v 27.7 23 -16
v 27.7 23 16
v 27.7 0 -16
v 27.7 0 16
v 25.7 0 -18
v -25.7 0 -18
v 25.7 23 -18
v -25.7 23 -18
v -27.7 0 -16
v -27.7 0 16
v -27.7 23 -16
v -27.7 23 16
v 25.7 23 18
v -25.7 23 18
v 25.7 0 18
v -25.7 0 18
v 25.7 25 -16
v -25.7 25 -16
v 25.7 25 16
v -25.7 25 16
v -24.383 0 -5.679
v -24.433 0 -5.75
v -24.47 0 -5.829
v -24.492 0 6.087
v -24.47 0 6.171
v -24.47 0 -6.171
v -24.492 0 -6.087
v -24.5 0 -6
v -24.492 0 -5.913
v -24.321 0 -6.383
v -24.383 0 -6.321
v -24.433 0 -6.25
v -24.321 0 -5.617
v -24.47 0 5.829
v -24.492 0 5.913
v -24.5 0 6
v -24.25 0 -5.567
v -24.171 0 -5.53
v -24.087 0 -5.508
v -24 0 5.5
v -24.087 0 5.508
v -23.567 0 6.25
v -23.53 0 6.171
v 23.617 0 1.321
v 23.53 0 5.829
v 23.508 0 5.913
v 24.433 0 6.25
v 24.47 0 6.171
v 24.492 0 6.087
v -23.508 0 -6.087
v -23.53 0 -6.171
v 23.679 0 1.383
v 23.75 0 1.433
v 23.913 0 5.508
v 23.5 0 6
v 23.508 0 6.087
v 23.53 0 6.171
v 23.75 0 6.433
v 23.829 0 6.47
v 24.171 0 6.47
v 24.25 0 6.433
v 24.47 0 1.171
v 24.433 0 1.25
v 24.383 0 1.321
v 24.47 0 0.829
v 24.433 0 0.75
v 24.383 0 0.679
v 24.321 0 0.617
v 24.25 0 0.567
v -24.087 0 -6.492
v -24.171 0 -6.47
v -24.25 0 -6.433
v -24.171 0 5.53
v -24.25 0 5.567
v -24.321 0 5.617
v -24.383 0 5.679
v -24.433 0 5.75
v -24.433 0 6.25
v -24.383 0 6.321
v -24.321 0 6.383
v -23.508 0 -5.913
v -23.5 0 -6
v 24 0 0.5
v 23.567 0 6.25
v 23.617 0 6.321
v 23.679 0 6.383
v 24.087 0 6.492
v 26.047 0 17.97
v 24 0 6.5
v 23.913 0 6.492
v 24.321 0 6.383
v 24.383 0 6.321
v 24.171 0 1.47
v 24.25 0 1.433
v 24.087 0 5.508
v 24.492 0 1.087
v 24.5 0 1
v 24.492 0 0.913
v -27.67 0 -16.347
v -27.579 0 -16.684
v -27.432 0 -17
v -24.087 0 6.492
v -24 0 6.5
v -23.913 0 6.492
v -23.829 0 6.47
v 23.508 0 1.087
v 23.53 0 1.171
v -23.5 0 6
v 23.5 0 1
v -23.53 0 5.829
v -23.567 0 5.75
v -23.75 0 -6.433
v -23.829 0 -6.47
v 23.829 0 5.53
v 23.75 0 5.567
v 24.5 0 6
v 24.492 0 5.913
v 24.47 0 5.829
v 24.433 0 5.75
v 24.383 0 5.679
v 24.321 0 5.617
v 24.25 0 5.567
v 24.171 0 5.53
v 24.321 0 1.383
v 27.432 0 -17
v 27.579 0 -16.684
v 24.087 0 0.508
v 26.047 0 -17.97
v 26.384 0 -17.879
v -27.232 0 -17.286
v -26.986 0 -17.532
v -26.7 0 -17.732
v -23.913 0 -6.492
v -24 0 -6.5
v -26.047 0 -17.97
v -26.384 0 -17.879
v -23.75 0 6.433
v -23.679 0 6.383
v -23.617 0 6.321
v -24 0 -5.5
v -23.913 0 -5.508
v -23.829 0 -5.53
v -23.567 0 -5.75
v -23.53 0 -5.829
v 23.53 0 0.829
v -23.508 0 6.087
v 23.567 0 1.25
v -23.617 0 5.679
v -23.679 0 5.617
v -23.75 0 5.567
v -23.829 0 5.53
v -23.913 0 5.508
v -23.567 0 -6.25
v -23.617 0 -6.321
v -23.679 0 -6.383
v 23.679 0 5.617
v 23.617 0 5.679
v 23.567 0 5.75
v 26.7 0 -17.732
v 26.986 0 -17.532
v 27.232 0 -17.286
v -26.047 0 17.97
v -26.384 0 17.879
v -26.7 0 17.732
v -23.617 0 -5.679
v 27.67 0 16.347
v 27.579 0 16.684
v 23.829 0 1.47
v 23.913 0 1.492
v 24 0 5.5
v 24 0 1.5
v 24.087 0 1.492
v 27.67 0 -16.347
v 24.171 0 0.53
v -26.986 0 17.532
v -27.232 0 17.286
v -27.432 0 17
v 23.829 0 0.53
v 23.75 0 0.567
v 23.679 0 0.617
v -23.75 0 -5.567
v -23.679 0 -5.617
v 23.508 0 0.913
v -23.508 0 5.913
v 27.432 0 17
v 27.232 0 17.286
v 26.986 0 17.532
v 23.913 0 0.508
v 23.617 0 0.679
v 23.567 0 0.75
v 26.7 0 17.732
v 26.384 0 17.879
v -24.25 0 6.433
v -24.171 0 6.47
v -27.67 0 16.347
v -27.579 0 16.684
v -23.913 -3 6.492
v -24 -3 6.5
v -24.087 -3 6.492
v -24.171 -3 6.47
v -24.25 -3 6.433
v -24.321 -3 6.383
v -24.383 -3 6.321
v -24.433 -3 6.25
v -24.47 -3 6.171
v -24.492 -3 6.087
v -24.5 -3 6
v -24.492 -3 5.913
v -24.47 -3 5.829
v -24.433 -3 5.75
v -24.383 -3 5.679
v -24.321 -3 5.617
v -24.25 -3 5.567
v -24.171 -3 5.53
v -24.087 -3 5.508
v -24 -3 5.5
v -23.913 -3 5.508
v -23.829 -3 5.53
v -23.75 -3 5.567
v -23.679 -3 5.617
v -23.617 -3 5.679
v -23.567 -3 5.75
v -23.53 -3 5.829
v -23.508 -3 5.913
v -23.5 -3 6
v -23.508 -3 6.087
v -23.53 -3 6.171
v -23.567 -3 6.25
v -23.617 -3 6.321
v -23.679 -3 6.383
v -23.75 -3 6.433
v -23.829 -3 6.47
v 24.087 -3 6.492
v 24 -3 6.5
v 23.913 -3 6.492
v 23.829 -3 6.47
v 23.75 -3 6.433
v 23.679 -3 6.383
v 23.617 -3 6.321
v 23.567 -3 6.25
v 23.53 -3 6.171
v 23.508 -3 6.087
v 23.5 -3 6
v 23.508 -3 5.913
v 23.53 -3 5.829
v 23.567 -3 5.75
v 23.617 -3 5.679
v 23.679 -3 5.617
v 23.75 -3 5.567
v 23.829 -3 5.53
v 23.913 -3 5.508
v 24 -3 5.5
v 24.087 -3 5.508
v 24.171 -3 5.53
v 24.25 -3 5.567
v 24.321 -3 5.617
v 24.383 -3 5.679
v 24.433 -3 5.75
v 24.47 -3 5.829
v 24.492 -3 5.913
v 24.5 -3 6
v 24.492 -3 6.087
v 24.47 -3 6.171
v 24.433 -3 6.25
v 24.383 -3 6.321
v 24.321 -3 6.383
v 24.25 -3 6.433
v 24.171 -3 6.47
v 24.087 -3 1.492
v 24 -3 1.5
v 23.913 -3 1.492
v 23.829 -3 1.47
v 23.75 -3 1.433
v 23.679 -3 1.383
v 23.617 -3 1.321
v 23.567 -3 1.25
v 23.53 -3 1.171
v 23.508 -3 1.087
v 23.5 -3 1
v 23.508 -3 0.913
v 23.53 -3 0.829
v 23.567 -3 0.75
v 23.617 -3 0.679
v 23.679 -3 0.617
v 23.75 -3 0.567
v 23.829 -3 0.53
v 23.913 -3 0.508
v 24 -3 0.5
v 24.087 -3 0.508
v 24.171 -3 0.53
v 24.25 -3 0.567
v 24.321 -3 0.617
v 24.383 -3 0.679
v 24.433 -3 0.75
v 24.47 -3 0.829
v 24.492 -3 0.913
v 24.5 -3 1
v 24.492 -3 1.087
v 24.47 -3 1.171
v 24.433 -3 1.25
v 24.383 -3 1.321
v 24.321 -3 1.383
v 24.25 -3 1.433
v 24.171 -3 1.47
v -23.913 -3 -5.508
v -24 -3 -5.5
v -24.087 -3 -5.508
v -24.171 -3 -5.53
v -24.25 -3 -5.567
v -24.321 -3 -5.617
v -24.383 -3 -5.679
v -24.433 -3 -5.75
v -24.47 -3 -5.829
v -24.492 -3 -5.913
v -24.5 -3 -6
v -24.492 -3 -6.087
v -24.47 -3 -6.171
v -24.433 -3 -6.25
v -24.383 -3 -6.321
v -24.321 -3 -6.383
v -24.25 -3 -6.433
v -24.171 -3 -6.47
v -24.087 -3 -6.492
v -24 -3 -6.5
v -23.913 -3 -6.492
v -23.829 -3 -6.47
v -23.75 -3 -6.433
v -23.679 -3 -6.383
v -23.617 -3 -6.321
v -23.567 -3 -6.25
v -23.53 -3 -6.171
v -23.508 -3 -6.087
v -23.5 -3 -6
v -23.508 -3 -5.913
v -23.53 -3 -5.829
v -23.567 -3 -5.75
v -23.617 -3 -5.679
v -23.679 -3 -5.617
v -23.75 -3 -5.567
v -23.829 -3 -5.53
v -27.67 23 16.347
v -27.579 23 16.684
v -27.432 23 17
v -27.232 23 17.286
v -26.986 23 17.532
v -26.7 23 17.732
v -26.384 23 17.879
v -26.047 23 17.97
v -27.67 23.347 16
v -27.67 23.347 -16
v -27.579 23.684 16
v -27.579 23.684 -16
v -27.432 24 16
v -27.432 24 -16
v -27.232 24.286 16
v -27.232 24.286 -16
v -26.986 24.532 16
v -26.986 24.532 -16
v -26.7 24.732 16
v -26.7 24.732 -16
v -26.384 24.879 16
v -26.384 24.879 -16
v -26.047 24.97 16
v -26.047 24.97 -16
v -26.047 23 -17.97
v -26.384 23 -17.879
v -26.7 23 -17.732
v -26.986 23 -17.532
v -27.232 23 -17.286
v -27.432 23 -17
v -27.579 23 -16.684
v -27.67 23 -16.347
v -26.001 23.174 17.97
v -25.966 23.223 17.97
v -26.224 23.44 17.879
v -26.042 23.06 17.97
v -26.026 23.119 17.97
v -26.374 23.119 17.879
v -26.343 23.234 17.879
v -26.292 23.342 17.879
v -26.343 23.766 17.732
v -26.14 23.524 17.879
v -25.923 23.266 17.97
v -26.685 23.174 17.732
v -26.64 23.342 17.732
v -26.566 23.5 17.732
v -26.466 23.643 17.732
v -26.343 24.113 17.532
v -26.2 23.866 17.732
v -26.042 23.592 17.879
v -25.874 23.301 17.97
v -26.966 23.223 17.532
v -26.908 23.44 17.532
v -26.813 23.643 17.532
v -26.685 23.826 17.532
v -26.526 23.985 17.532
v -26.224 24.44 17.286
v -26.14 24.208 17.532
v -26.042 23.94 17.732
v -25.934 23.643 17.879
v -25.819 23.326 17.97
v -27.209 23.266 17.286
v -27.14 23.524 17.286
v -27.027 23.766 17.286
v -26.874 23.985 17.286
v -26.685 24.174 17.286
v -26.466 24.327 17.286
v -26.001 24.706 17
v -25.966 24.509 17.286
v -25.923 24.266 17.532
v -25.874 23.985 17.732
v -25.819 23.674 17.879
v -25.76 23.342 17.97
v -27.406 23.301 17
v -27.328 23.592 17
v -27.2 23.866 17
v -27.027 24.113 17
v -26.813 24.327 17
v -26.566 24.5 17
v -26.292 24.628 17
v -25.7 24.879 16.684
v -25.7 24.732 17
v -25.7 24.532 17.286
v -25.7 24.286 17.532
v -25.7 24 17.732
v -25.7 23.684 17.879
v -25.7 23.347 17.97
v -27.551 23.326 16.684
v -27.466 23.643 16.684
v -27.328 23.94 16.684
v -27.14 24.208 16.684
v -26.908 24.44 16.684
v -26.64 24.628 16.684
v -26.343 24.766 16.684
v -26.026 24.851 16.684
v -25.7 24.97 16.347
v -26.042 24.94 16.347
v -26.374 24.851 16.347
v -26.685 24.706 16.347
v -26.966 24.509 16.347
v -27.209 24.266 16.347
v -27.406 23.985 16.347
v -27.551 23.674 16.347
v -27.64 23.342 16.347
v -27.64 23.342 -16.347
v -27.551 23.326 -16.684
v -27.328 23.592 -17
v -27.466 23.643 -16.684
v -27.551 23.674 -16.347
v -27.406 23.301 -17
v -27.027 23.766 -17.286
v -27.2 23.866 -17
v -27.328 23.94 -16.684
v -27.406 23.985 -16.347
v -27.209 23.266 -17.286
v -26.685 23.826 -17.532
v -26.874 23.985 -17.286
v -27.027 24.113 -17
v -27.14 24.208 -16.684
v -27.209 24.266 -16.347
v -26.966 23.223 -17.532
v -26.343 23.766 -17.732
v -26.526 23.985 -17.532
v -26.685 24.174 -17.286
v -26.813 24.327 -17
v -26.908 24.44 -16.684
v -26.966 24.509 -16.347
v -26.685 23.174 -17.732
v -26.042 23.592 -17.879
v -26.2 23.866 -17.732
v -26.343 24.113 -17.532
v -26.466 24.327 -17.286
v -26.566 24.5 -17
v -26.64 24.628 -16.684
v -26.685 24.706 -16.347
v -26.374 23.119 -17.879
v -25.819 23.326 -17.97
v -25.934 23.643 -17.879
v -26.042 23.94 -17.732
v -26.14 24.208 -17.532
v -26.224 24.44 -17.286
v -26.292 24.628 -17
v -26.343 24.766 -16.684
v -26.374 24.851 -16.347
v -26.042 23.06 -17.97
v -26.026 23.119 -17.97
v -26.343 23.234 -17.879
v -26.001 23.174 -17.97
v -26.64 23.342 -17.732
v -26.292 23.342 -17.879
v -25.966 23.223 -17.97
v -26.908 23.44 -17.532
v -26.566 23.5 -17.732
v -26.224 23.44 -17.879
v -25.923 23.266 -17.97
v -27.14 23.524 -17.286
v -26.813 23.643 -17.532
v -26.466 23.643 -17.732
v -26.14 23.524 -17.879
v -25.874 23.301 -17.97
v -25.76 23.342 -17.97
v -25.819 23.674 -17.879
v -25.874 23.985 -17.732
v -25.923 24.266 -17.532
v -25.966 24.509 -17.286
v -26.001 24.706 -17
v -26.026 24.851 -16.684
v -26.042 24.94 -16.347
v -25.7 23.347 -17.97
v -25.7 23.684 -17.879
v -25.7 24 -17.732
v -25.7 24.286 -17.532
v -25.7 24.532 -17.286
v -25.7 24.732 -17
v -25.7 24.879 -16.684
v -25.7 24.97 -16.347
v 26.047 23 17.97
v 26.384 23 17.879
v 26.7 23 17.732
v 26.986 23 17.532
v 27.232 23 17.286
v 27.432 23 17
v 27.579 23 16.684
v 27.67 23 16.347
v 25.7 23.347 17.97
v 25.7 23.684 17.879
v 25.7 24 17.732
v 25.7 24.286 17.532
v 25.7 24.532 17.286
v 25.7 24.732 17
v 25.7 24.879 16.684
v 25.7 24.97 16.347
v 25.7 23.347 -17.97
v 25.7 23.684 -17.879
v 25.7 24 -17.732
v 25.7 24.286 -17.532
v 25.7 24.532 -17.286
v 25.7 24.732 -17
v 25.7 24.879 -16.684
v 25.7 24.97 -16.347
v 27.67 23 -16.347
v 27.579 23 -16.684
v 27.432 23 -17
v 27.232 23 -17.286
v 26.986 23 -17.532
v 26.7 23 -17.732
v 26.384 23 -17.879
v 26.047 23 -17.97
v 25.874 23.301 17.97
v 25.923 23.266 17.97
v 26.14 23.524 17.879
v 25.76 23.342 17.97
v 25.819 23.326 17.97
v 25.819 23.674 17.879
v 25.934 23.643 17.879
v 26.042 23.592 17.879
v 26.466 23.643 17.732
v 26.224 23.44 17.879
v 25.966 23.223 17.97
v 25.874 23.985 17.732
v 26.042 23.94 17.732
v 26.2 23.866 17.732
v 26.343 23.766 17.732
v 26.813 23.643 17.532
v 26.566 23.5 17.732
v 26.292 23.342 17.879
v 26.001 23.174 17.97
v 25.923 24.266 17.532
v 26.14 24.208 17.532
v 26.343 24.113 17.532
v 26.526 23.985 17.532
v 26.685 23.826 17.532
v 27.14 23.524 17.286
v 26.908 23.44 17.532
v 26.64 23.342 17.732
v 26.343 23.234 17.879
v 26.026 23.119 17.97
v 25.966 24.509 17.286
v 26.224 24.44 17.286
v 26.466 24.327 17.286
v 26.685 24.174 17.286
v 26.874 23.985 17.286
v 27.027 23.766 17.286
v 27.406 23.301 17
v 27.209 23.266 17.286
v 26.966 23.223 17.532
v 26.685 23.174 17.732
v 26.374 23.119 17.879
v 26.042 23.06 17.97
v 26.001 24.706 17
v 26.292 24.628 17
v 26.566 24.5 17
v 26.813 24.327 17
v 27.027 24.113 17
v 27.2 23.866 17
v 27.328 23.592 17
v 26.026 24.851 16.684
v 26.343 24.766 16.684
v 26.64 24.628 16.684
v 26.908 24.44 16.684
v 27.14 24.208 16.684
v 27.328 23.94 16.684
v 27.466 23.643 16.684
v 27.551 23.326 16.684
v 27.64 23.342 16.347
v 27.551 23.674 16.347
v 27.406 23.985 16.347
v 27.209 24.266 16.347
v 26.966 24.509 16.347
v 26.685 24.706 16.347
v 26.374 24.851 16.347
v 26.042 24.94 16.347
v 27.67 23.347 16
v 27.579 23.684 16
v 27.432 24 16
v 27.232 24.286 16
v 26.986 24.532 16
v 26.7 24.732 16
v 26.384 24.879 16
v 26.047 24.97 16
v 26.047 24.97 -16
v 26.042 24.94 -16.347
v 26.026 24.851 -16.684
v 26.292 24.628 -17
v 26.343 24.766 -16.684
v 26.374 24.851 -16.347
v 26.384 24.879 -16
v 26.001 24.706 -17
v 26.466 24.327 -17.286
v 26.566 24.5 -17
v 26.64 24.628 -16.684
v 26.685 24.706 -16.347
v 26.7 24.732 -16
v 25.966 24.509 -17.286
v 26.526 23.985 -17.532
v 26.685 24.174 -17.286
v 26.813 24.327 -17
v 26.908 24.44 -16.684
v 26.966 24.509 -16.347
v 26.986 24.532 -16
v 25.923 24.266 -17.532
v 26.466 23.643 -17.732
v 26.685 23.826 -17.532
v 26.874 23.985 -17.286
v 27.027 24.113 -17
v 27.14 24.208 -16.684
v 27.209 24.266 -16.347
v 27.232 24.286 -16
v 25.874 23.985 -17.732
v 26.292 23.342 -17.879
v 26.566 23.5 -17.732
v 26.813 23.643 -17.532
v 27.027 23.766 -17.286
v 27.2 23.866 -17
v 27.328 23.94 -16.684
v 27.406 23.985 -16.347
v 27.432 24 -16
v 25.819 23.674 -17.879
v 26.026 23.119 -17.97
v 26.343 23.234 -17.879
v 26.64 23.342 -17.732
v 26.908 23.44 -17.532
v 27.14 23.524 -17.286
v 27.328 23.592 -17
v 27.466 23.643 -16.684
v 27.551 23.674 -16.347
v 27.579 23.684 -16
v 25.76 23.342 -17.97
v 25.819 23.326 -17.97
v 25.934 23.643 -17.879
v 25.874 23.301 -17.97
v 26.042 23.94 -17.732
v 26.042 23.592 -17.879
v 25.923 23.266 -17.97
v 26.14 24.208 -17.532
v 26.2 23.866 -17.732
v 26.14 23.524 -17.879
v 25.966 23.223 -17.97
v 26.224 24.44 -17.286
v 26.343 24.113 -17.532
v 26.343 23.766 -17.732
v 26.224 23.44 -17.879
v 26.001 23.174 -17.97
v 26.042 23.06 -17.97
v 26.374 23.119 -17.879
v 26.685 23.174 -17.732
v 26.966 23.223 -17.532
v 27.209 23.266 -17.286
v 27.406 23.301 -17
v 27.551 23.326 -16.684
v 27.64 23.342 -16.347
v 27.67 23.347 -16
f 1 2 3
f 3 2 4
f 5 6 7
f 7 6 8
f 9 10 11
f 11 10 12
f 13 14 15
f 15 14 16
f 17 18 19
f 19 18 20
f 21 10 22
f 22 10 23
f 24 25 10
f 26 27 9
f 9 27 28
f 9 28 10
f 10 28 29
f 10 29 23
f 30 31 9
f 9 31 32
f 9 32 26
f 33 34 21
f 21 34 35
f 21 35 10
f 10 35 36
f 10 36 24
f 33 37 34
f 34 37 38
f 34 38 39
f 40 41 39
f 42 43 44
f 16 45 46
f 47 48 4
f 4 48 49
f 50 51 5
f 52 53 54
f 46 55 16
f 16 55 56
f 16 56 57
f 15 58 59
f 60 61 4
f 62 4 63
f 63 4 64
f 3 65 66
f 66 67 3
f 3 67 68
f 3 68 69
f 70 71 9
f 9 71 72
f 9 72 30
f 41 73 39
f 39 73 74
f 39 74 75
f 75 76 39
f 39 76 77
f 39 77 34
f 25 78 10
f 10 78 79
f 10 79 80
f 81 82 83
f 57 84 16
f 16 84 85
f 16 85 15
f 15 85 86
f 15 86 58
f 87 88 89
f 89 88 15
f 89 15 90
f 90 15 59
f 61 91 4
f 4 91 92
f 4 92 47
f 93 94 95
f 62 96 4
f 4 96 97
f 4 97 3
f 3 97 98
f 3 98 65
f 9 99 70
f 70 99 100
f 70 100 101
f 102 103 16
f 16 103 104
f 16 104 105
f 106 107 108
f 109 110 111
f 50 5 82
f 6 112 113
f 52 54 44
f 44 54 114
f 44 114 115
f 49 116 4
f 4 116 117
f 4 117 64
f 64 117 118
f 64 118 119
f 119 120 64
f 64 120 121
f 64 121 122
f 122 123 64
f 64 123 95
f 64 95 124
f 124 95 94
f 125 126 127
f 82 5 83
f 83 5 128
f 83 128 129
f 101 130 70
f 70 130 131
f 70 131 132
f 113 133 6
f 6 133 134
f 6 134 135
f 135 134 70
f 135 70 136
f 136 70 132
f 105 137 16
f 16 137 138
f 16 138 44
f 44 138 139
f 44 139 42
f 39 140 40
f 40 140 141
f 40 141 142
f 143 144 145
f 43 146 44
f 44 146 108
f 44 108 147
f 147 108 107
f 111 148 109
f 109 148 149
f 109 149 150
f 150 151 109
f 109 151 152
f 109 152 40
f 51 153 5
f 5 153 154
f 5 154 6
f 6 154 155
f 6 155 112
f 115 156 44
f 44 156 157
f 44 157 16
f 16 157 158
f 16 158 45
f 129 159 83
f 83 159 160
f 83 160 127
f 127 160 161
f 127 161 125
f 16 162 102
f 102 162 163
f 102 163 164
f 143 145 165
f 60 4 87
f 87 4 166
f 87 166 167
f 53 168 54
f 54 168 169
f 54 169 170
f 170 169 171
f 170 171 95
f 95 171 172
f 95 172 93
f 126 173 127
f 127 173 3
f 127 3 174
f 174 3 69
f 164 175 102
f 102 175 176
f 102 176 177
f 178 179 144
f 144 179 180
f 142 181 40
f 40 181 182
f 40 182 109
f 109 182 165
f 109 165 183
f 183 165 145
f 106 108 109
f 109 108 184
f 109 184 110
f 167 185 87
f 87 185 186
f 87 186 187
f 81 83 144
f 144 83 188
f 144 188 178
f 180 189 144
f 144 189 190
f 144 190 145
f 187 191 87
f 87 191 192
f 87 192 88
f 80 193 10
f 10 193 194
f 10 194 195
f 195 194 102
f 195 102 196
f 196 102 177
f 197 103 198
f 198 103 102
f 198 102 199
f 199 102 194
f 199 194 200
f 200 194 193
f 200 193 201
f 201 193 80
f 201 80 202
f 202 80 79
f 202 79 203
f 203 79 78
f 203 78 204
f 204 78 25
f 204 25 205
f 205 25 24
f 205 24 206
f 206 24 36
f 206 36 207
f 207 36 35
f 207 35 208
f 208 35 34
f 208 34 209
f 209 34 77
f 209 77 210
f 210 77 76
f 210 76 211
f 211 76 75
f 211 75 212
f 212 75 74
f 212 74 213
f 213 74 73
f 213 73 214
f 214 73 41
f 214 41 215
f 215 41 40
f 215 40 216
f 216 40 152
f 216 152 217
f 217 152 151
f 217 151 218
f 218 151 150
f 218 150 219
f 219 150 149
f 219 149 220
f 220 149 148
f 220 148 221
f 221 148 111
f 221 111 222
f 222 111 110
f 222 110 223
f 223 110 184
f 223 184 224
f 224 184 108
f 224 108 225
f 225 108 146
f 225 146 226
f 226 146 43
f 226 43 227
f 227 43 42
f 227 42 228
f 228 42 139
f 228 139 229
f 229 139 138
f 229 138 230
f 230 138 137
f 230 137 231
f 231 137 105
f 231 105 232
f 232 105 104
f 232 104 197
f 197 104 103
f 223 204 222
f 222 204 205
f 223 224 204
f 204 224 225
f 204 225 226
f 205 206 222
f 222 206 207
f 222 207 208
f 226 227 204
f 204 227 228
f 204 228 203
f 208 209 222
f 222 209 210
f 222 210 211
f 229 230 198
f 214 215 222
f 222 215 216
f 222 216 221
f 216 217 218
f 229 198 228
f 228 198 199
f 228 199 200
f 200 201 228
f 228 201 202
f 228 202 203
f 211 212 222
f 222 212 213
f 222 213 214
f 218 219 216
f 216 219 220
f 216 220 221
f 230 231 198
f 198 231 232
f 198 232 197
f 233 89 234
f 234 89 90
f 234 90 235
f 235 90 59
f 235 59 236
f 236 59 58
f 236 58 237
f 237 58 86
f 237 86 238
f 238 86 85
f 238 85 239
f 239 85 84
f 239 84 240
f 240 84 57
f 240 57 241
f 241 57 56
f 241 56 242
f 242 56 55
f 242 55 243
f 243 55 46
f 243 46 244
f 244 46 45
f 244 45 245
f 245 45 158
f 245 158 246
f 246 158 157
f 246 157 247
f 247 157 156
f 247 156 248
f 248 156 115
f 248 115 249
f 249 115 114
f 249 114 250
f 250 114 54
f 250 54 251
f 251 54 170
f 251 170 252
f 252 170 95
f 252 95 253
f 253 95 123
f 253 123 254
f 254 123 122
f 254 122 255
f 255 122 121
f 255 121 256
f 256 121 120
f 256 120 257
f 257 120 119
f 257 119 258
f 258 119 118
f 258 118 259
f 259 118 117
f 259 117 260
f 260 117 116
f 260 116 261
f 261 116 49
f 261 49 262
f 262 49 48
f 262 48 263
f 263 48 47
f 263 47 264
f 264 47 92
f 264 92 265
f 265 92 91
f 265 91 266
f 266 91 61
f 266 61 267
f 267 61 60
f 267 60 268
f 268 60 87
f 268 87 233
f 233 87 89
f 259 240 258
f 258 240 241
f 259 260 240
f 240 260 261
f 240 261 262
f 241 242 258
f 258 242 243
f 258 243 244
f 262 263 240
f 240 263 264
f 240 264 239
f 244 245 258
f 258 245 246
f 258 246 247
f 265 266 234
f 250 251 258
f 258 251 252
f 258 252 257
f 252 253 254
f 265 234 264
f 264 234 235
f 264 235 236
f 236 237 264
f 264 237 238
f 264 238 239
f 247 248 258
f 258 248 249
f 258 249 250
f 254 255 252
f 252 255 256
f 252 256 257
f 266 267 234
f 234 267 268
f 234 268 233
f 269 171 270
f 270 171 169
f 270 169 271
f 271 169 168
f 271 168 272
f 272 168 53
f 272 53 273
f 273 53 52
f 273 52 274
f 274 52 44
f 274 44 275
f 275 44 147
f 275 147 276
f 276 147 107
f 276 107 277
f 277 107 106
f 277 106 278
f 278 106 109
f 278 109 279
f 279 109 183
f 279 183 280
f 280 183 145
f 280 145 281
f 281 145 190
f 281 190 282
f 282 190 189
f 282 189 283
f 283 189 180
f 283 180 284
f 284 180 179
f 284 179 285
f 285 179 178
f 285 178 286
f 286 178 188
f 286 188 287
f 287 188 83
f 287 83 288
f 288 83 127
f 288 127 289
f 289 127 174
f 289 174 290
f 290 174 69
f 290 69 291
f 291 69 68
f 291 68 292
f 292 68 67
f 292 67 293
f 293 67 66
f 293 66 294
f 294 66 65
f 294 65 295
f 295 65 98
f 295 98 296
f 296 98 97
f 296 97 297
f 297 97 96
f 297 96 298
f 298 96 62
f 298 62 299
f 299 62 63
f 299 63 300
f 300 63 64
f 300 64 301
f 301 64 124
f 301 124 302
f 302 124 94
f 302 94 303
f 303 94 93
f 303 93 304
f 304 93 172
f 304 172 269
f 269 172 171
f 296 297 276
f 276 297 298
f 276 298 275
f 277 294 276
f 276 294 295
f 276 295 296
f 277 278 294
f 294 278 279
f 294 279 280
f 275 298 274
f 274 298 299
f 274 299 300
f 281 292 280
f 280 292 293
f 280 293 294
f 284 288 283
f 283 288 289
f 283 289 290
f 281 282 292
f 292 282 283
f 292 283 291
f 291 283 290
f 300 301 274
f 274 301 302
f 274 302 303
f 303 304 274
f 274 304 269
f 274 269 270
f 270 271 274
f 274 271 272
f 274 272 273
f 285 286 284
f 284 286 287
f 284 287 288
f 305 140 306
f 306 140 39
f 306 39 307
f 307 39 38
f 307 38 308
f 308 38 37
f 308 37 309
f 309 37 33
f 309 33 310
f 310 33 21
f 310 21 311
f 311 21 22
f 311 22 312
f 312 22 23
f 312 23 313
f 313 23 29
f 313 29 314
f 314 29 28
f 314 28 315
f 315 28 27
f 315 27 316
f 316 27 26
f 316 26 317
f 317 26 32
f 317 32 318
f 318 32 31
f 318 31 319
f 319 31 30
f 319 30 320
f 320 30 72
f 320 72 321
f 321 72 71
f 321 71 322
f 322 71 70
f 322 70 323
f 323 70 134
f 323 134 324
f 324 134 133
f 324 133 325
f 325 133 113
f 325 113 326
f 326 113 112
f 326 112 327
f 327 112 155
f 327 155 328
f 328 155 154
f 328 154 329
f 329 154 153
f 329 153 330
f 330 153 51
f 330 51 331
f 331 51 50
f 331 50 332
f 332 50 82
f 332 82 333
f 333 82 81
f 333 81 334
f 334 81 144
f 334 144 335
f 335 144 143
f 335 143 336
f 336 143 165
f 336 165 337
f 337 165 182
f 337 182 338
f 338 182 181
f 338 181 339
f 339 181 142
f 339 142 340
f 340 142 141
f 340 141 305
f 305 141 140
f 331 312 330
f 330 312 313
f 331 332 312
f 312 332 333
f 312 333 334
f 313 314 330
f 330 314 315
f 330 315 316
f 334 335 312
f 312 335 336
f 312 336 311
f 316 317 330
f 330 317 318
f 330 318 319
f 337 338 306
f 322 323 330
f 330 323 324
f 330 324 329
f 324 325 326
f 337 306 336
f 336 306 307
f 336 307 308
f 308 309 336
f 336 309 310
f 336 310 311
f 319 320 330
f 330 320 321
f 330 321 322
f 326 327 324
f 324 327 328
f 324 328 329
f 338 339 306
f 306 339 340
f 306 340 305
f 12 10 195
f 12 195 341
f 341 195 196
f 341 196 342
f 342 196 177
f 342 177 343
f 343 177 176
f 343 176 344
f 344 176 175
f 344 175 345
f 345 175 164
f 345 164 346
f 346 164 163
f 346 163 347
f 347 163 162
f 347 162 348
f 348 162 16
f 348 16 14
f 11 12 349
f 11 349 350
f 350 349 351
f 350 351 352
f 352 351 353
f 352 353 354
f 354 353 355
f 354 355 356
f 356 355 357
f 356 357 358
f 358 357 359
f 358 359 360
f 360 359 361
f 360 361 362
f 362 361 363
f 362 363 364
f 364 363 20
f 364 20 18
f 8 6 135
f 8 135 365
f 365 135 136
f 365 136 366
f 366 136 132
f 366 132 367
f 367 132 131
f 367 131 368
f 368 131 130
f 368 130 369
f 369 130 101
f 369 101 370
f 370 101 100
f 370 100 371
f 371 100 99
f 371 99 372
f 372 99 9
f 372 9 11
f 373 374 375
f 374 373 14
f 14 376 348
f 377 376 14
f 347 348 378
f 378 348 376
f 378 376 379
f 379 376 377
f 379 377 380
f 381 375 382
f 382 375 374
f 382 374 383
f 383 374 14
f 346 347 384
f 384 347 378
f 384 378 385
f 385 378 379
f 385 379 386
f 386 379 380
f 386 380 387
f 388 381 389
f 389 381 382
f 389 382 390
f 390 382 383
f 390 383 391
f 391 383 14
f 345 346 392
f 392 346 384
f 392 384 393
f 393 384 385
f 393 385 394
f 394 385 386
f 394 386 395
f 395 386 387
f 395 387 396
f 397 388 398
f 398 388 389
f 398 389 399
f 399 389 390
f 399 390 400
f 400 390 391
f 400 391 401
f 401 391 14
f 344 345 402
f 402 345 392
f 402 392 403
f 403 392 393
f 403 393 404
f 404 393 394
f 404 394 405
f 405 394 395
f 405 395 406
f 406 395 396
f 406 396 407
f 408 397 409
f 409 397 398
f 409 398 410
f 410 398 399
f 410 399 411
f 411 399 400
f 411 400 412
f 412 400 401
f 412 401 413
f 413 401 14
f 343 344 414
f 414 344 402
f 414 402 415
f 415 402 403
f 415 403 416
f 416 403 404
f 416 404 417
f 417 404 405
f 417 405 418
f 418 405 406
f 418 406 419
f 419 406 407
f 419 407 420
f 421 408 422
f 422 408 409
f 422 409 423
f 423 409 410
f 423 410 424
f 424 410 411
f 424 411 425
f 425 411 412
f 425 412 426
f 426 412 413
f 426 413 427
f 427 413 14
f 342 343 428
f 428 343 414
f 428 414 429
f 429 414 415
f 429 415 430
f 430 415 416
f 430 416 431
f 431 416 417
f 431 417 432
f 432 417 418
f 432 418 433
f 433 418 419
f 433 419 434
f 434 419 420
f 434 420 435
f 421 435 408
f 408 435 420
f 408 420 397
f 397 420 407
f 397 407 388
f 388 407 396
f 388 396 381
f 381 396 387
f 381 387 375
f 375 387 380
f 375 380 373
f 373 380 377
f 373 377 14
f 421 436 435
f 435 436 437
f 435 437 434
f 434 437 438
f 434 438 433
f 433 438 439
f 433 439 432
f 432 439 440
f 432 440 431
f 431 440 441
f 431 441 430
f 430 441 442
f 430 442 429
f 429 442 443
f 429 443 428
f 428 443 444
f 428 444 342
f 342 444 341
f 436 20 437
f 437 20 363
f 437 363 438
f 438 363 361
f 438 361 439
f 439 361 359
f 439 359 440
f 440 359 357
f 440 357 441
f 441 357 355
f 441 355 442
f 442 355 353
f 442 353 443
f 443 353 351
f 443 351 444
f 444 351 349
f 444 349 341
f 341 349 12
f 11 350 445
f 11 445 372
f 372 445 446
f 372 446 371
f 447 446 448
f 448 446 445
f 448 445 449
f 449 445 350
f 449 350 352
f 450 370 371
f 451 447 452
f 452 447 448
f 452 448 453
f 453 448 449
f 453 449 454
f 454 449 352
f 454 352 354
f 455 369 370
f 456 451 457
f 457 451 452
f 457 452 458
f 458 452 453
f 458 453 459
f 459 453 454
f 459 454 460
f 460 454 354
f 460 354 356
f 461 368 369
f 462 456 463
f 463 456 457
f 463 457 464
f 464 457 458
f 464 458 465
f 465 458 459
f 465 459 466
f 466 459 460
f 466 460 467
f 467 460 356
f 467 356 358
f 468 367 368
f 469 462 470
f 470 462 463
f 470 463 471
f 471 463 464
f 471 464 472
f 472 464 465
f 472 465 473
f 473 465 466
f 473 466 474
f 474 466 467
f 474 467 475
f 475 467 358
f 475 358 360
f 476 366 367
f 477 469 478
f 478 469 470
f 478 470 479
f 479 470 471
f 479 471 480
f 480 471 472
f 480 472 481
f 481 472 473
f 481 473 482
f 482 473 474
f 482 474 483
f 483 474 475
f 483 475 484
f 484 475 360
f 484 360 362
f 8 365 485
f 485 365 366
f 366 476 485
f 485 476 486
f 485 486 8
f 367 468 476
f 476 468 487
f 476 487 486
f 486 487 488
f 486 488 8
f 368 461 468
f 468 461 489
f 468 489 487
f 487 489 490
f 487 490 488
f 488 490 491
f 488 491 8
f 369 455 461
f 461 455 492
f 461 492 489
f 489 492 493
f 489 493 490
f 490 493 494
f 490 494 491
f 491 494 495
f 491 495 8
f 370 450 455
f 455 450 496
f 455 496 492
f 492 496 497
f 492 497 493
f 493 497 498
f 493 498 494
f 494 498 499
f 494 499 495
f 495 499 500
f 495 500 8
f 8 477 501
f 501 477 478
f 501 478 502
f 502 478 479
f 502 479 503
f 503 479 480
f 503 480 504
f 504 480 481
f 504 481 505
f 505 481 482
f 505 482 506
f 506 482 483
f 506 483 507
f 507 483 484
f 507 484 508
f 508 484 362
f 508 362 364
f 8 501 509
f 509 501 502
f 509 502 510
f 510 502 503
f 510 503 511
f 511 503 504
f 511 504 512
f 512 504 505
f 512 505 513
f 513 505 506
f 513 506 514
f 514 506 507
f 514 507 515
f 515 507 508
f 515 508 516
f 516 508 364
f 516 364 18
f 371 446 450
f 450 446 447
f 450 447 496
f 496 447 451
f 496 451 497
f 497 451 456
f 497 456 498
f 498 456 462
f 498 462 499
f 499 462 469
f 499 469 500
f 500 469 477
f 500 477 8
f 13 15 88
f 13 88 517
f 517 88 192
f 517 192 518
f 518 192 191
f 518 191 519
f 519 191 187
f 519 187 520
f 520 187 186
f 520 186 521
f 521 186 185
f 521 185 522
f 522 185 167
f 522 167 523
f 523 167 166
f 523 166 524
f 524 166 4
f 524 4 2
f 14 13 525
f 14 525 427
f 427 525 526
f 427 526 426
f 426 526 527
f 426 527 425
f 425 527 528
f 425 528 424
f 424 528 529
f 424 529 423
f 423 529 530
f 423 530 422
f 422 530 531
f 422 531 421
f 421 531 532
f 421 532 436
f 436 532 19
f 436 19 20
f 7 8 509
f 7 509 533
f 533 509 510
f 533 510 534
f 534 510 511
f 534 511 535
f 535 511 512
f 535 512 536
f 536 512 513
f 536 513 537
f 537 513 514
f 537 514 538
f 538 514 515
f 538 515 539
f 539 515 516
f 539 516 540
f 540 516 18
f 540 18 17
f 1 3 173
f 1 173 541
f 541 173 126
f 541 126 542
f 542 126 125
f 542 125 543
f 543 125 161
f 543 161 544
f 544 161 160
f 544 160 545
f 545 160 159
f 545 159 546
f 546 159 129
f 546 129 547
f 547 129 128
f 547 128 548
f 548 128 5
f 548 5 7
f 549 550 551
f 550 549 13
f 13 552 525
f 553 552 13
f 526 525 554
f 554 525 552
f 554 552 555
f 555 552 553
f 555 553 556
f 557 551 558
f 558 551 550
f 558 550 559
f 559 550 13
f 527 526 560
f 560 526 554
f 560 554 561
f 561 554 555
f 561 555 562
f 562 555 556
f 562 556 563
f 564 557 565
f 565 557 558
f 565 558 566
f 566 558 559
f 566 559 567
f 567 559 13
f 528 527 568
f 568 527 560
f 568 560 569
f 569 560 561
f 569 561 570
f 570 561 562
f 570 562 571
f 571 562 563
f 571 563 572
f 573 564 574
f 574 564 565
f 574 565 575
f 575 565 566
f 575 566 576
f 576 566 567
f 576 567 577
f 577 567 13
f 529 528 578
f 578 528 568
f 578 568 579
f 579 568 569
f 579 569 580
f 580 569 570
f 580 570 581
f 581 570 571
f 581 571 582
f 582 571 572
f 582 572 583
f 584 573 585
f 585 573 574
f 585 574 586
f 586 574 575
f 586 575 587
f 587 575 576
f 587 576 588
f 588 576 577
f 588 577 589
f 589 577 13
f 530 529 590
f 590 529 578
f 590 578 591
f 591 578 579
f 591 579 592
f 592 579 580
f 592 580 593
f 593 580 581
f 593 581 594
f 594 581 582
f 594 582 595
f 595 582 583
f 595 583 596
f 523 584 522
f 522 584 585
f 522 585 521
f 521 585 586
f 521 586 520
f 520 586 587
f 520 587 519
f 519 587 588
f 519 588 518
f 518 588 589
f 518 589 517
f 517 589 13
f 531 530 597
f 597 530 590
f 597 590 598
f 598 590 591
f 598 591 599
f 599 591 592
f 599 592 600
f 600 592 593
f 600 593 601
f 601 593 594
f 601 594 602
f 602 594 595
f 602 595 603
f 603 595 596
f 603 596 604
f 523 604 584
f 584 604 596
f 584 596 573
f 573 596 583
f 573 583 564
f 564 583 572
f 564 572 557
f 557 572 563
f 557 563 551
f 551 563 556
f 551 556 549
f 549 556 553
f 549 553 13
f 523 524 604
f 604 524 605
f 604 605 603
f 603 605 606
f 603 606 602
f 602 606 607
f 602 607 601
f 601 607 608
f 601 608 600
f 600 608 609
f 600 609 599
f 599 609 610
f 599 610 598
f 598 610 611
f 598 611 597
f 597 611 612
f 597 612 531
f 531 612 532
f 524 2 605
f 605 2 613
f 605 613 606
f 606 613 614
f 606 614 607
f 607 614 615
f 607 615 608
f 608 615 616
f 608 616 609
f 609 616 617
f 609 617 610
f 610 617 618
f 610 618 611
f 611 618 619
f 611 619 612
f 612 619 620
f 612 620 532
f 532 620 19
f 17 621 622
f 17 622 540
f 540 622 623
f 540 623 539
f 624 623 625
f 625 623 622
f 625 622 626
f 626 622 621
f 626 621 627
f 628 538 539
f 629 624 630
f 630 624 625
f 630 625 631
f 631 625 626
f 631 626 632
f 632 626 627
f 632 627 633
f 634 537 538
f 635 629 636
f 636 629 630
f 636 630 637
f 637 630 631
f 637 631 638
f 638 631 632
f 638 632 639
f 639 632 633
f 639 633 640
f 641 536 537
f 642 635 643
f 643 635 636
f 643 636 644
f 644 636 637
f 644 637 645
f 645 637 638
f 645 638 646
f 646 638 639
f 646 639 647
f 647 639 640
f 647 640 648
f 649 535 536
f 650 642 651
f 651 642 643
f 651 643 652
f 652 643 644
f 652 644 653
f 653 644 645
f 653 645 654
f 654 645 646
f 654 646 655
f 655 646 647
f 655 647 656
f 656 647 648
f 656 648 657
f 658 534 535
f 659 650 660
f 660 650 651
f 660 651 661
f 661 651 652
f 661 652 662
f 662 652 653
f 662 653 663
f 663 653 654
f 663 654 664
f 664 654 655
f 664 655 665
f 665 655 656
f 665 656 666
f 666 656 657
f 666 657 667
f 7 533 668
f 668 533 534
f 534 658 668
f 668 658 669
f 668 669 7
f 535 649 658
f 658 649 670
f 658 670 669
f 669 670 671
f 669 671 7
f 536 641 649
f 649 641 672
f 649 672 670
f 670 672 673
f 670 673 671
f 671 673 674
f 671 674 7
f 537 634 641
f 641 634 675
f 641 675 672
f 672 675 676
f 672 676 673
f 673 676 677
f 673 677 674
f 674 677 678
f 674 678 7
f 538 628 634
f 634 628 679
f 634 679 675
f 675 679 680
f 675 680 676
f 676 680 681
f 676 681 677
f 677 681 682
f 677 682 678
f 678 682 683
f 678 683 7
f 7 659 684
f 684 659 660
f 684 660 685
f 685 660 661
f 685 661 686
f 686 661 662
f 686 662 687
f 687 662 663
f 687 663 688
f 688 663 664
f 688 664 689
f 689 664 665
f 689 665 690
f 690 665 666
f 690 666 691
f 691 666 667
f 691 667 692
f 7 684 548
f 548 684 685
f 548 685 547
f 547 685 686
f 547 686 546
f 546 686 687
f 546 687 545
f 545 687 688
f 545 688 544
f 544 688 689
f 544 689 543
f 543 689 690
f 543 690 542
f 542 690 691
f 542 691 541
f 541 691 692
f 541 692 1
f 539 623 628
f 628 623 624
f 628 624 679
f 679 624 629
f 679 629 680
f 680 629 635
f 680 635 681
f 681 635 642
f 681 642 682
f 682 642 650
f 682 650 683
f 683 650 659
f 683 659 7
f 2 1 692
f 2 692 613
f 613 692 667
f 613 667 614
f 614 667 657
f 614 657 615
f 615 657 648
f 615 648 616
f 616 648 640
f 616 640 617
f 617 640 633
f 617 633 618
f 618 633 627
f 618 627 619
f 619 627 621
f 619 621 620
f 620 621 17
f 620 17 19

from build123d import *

# Parameters (mm, degrees)
SKETCH1_W           = 55.4
SKETCH1_H           = 36
BOSS_EXTRUDE1_DEPTH = 25
SKETCH2_R           = 0.5
BOSS_EXTRUDE2_DEPTH = 3
FILLET1_R           = 2


with BuildPart() as part:
    # Sketch1 → Boss-Extrude1 (new body)
    with BuildSketch(Plane(origin=(0, 0, 0), x_dir=(1, 0, 0), z_dir=(0, 1, 0))):
        Rectangle(SKETCH1_W, SKETCH1_H)
    extrude(amount=BOSS_EXTRUDE1_DEPTH)

    # Sketch2 → Boss-Extrude2 (add)
    with BuildSketch(Plane(origin=(0, 0, 0), x_dir=(1, 0, 0), z_dir=(0, 1, 0))):
        with Locations((-24, -6)):
            Circle(SKETCH2_R)
        with Locations((24, -6)):
            Circle(SKETCH2_R)
        with Locations((24, -1)):
            Circle(SKETCH2_R)
        with Locations((-24, 6)):
            Circle(SKETCH2_R)
    extrude(amount=-BOSS_EXTRUDE2_DEPTH)

    # Fillet1
    fillet1_edges = [part.edges().sort_by_distance(p)[0] for p in [
        (-27.7, 25, 0),
        (0, 25, 18),
        (27.7, 25, 0),
        (0, 25, -18),
        (27.7, 12.5, 18),
        (-27.7, 12.5, 18),
        (-27.7, 12.5, -18),
        (27.7, 12.5, -18),
    ]]
    fillet(fillet1_edges, radius=FILLET1_R)


solid = part.part
